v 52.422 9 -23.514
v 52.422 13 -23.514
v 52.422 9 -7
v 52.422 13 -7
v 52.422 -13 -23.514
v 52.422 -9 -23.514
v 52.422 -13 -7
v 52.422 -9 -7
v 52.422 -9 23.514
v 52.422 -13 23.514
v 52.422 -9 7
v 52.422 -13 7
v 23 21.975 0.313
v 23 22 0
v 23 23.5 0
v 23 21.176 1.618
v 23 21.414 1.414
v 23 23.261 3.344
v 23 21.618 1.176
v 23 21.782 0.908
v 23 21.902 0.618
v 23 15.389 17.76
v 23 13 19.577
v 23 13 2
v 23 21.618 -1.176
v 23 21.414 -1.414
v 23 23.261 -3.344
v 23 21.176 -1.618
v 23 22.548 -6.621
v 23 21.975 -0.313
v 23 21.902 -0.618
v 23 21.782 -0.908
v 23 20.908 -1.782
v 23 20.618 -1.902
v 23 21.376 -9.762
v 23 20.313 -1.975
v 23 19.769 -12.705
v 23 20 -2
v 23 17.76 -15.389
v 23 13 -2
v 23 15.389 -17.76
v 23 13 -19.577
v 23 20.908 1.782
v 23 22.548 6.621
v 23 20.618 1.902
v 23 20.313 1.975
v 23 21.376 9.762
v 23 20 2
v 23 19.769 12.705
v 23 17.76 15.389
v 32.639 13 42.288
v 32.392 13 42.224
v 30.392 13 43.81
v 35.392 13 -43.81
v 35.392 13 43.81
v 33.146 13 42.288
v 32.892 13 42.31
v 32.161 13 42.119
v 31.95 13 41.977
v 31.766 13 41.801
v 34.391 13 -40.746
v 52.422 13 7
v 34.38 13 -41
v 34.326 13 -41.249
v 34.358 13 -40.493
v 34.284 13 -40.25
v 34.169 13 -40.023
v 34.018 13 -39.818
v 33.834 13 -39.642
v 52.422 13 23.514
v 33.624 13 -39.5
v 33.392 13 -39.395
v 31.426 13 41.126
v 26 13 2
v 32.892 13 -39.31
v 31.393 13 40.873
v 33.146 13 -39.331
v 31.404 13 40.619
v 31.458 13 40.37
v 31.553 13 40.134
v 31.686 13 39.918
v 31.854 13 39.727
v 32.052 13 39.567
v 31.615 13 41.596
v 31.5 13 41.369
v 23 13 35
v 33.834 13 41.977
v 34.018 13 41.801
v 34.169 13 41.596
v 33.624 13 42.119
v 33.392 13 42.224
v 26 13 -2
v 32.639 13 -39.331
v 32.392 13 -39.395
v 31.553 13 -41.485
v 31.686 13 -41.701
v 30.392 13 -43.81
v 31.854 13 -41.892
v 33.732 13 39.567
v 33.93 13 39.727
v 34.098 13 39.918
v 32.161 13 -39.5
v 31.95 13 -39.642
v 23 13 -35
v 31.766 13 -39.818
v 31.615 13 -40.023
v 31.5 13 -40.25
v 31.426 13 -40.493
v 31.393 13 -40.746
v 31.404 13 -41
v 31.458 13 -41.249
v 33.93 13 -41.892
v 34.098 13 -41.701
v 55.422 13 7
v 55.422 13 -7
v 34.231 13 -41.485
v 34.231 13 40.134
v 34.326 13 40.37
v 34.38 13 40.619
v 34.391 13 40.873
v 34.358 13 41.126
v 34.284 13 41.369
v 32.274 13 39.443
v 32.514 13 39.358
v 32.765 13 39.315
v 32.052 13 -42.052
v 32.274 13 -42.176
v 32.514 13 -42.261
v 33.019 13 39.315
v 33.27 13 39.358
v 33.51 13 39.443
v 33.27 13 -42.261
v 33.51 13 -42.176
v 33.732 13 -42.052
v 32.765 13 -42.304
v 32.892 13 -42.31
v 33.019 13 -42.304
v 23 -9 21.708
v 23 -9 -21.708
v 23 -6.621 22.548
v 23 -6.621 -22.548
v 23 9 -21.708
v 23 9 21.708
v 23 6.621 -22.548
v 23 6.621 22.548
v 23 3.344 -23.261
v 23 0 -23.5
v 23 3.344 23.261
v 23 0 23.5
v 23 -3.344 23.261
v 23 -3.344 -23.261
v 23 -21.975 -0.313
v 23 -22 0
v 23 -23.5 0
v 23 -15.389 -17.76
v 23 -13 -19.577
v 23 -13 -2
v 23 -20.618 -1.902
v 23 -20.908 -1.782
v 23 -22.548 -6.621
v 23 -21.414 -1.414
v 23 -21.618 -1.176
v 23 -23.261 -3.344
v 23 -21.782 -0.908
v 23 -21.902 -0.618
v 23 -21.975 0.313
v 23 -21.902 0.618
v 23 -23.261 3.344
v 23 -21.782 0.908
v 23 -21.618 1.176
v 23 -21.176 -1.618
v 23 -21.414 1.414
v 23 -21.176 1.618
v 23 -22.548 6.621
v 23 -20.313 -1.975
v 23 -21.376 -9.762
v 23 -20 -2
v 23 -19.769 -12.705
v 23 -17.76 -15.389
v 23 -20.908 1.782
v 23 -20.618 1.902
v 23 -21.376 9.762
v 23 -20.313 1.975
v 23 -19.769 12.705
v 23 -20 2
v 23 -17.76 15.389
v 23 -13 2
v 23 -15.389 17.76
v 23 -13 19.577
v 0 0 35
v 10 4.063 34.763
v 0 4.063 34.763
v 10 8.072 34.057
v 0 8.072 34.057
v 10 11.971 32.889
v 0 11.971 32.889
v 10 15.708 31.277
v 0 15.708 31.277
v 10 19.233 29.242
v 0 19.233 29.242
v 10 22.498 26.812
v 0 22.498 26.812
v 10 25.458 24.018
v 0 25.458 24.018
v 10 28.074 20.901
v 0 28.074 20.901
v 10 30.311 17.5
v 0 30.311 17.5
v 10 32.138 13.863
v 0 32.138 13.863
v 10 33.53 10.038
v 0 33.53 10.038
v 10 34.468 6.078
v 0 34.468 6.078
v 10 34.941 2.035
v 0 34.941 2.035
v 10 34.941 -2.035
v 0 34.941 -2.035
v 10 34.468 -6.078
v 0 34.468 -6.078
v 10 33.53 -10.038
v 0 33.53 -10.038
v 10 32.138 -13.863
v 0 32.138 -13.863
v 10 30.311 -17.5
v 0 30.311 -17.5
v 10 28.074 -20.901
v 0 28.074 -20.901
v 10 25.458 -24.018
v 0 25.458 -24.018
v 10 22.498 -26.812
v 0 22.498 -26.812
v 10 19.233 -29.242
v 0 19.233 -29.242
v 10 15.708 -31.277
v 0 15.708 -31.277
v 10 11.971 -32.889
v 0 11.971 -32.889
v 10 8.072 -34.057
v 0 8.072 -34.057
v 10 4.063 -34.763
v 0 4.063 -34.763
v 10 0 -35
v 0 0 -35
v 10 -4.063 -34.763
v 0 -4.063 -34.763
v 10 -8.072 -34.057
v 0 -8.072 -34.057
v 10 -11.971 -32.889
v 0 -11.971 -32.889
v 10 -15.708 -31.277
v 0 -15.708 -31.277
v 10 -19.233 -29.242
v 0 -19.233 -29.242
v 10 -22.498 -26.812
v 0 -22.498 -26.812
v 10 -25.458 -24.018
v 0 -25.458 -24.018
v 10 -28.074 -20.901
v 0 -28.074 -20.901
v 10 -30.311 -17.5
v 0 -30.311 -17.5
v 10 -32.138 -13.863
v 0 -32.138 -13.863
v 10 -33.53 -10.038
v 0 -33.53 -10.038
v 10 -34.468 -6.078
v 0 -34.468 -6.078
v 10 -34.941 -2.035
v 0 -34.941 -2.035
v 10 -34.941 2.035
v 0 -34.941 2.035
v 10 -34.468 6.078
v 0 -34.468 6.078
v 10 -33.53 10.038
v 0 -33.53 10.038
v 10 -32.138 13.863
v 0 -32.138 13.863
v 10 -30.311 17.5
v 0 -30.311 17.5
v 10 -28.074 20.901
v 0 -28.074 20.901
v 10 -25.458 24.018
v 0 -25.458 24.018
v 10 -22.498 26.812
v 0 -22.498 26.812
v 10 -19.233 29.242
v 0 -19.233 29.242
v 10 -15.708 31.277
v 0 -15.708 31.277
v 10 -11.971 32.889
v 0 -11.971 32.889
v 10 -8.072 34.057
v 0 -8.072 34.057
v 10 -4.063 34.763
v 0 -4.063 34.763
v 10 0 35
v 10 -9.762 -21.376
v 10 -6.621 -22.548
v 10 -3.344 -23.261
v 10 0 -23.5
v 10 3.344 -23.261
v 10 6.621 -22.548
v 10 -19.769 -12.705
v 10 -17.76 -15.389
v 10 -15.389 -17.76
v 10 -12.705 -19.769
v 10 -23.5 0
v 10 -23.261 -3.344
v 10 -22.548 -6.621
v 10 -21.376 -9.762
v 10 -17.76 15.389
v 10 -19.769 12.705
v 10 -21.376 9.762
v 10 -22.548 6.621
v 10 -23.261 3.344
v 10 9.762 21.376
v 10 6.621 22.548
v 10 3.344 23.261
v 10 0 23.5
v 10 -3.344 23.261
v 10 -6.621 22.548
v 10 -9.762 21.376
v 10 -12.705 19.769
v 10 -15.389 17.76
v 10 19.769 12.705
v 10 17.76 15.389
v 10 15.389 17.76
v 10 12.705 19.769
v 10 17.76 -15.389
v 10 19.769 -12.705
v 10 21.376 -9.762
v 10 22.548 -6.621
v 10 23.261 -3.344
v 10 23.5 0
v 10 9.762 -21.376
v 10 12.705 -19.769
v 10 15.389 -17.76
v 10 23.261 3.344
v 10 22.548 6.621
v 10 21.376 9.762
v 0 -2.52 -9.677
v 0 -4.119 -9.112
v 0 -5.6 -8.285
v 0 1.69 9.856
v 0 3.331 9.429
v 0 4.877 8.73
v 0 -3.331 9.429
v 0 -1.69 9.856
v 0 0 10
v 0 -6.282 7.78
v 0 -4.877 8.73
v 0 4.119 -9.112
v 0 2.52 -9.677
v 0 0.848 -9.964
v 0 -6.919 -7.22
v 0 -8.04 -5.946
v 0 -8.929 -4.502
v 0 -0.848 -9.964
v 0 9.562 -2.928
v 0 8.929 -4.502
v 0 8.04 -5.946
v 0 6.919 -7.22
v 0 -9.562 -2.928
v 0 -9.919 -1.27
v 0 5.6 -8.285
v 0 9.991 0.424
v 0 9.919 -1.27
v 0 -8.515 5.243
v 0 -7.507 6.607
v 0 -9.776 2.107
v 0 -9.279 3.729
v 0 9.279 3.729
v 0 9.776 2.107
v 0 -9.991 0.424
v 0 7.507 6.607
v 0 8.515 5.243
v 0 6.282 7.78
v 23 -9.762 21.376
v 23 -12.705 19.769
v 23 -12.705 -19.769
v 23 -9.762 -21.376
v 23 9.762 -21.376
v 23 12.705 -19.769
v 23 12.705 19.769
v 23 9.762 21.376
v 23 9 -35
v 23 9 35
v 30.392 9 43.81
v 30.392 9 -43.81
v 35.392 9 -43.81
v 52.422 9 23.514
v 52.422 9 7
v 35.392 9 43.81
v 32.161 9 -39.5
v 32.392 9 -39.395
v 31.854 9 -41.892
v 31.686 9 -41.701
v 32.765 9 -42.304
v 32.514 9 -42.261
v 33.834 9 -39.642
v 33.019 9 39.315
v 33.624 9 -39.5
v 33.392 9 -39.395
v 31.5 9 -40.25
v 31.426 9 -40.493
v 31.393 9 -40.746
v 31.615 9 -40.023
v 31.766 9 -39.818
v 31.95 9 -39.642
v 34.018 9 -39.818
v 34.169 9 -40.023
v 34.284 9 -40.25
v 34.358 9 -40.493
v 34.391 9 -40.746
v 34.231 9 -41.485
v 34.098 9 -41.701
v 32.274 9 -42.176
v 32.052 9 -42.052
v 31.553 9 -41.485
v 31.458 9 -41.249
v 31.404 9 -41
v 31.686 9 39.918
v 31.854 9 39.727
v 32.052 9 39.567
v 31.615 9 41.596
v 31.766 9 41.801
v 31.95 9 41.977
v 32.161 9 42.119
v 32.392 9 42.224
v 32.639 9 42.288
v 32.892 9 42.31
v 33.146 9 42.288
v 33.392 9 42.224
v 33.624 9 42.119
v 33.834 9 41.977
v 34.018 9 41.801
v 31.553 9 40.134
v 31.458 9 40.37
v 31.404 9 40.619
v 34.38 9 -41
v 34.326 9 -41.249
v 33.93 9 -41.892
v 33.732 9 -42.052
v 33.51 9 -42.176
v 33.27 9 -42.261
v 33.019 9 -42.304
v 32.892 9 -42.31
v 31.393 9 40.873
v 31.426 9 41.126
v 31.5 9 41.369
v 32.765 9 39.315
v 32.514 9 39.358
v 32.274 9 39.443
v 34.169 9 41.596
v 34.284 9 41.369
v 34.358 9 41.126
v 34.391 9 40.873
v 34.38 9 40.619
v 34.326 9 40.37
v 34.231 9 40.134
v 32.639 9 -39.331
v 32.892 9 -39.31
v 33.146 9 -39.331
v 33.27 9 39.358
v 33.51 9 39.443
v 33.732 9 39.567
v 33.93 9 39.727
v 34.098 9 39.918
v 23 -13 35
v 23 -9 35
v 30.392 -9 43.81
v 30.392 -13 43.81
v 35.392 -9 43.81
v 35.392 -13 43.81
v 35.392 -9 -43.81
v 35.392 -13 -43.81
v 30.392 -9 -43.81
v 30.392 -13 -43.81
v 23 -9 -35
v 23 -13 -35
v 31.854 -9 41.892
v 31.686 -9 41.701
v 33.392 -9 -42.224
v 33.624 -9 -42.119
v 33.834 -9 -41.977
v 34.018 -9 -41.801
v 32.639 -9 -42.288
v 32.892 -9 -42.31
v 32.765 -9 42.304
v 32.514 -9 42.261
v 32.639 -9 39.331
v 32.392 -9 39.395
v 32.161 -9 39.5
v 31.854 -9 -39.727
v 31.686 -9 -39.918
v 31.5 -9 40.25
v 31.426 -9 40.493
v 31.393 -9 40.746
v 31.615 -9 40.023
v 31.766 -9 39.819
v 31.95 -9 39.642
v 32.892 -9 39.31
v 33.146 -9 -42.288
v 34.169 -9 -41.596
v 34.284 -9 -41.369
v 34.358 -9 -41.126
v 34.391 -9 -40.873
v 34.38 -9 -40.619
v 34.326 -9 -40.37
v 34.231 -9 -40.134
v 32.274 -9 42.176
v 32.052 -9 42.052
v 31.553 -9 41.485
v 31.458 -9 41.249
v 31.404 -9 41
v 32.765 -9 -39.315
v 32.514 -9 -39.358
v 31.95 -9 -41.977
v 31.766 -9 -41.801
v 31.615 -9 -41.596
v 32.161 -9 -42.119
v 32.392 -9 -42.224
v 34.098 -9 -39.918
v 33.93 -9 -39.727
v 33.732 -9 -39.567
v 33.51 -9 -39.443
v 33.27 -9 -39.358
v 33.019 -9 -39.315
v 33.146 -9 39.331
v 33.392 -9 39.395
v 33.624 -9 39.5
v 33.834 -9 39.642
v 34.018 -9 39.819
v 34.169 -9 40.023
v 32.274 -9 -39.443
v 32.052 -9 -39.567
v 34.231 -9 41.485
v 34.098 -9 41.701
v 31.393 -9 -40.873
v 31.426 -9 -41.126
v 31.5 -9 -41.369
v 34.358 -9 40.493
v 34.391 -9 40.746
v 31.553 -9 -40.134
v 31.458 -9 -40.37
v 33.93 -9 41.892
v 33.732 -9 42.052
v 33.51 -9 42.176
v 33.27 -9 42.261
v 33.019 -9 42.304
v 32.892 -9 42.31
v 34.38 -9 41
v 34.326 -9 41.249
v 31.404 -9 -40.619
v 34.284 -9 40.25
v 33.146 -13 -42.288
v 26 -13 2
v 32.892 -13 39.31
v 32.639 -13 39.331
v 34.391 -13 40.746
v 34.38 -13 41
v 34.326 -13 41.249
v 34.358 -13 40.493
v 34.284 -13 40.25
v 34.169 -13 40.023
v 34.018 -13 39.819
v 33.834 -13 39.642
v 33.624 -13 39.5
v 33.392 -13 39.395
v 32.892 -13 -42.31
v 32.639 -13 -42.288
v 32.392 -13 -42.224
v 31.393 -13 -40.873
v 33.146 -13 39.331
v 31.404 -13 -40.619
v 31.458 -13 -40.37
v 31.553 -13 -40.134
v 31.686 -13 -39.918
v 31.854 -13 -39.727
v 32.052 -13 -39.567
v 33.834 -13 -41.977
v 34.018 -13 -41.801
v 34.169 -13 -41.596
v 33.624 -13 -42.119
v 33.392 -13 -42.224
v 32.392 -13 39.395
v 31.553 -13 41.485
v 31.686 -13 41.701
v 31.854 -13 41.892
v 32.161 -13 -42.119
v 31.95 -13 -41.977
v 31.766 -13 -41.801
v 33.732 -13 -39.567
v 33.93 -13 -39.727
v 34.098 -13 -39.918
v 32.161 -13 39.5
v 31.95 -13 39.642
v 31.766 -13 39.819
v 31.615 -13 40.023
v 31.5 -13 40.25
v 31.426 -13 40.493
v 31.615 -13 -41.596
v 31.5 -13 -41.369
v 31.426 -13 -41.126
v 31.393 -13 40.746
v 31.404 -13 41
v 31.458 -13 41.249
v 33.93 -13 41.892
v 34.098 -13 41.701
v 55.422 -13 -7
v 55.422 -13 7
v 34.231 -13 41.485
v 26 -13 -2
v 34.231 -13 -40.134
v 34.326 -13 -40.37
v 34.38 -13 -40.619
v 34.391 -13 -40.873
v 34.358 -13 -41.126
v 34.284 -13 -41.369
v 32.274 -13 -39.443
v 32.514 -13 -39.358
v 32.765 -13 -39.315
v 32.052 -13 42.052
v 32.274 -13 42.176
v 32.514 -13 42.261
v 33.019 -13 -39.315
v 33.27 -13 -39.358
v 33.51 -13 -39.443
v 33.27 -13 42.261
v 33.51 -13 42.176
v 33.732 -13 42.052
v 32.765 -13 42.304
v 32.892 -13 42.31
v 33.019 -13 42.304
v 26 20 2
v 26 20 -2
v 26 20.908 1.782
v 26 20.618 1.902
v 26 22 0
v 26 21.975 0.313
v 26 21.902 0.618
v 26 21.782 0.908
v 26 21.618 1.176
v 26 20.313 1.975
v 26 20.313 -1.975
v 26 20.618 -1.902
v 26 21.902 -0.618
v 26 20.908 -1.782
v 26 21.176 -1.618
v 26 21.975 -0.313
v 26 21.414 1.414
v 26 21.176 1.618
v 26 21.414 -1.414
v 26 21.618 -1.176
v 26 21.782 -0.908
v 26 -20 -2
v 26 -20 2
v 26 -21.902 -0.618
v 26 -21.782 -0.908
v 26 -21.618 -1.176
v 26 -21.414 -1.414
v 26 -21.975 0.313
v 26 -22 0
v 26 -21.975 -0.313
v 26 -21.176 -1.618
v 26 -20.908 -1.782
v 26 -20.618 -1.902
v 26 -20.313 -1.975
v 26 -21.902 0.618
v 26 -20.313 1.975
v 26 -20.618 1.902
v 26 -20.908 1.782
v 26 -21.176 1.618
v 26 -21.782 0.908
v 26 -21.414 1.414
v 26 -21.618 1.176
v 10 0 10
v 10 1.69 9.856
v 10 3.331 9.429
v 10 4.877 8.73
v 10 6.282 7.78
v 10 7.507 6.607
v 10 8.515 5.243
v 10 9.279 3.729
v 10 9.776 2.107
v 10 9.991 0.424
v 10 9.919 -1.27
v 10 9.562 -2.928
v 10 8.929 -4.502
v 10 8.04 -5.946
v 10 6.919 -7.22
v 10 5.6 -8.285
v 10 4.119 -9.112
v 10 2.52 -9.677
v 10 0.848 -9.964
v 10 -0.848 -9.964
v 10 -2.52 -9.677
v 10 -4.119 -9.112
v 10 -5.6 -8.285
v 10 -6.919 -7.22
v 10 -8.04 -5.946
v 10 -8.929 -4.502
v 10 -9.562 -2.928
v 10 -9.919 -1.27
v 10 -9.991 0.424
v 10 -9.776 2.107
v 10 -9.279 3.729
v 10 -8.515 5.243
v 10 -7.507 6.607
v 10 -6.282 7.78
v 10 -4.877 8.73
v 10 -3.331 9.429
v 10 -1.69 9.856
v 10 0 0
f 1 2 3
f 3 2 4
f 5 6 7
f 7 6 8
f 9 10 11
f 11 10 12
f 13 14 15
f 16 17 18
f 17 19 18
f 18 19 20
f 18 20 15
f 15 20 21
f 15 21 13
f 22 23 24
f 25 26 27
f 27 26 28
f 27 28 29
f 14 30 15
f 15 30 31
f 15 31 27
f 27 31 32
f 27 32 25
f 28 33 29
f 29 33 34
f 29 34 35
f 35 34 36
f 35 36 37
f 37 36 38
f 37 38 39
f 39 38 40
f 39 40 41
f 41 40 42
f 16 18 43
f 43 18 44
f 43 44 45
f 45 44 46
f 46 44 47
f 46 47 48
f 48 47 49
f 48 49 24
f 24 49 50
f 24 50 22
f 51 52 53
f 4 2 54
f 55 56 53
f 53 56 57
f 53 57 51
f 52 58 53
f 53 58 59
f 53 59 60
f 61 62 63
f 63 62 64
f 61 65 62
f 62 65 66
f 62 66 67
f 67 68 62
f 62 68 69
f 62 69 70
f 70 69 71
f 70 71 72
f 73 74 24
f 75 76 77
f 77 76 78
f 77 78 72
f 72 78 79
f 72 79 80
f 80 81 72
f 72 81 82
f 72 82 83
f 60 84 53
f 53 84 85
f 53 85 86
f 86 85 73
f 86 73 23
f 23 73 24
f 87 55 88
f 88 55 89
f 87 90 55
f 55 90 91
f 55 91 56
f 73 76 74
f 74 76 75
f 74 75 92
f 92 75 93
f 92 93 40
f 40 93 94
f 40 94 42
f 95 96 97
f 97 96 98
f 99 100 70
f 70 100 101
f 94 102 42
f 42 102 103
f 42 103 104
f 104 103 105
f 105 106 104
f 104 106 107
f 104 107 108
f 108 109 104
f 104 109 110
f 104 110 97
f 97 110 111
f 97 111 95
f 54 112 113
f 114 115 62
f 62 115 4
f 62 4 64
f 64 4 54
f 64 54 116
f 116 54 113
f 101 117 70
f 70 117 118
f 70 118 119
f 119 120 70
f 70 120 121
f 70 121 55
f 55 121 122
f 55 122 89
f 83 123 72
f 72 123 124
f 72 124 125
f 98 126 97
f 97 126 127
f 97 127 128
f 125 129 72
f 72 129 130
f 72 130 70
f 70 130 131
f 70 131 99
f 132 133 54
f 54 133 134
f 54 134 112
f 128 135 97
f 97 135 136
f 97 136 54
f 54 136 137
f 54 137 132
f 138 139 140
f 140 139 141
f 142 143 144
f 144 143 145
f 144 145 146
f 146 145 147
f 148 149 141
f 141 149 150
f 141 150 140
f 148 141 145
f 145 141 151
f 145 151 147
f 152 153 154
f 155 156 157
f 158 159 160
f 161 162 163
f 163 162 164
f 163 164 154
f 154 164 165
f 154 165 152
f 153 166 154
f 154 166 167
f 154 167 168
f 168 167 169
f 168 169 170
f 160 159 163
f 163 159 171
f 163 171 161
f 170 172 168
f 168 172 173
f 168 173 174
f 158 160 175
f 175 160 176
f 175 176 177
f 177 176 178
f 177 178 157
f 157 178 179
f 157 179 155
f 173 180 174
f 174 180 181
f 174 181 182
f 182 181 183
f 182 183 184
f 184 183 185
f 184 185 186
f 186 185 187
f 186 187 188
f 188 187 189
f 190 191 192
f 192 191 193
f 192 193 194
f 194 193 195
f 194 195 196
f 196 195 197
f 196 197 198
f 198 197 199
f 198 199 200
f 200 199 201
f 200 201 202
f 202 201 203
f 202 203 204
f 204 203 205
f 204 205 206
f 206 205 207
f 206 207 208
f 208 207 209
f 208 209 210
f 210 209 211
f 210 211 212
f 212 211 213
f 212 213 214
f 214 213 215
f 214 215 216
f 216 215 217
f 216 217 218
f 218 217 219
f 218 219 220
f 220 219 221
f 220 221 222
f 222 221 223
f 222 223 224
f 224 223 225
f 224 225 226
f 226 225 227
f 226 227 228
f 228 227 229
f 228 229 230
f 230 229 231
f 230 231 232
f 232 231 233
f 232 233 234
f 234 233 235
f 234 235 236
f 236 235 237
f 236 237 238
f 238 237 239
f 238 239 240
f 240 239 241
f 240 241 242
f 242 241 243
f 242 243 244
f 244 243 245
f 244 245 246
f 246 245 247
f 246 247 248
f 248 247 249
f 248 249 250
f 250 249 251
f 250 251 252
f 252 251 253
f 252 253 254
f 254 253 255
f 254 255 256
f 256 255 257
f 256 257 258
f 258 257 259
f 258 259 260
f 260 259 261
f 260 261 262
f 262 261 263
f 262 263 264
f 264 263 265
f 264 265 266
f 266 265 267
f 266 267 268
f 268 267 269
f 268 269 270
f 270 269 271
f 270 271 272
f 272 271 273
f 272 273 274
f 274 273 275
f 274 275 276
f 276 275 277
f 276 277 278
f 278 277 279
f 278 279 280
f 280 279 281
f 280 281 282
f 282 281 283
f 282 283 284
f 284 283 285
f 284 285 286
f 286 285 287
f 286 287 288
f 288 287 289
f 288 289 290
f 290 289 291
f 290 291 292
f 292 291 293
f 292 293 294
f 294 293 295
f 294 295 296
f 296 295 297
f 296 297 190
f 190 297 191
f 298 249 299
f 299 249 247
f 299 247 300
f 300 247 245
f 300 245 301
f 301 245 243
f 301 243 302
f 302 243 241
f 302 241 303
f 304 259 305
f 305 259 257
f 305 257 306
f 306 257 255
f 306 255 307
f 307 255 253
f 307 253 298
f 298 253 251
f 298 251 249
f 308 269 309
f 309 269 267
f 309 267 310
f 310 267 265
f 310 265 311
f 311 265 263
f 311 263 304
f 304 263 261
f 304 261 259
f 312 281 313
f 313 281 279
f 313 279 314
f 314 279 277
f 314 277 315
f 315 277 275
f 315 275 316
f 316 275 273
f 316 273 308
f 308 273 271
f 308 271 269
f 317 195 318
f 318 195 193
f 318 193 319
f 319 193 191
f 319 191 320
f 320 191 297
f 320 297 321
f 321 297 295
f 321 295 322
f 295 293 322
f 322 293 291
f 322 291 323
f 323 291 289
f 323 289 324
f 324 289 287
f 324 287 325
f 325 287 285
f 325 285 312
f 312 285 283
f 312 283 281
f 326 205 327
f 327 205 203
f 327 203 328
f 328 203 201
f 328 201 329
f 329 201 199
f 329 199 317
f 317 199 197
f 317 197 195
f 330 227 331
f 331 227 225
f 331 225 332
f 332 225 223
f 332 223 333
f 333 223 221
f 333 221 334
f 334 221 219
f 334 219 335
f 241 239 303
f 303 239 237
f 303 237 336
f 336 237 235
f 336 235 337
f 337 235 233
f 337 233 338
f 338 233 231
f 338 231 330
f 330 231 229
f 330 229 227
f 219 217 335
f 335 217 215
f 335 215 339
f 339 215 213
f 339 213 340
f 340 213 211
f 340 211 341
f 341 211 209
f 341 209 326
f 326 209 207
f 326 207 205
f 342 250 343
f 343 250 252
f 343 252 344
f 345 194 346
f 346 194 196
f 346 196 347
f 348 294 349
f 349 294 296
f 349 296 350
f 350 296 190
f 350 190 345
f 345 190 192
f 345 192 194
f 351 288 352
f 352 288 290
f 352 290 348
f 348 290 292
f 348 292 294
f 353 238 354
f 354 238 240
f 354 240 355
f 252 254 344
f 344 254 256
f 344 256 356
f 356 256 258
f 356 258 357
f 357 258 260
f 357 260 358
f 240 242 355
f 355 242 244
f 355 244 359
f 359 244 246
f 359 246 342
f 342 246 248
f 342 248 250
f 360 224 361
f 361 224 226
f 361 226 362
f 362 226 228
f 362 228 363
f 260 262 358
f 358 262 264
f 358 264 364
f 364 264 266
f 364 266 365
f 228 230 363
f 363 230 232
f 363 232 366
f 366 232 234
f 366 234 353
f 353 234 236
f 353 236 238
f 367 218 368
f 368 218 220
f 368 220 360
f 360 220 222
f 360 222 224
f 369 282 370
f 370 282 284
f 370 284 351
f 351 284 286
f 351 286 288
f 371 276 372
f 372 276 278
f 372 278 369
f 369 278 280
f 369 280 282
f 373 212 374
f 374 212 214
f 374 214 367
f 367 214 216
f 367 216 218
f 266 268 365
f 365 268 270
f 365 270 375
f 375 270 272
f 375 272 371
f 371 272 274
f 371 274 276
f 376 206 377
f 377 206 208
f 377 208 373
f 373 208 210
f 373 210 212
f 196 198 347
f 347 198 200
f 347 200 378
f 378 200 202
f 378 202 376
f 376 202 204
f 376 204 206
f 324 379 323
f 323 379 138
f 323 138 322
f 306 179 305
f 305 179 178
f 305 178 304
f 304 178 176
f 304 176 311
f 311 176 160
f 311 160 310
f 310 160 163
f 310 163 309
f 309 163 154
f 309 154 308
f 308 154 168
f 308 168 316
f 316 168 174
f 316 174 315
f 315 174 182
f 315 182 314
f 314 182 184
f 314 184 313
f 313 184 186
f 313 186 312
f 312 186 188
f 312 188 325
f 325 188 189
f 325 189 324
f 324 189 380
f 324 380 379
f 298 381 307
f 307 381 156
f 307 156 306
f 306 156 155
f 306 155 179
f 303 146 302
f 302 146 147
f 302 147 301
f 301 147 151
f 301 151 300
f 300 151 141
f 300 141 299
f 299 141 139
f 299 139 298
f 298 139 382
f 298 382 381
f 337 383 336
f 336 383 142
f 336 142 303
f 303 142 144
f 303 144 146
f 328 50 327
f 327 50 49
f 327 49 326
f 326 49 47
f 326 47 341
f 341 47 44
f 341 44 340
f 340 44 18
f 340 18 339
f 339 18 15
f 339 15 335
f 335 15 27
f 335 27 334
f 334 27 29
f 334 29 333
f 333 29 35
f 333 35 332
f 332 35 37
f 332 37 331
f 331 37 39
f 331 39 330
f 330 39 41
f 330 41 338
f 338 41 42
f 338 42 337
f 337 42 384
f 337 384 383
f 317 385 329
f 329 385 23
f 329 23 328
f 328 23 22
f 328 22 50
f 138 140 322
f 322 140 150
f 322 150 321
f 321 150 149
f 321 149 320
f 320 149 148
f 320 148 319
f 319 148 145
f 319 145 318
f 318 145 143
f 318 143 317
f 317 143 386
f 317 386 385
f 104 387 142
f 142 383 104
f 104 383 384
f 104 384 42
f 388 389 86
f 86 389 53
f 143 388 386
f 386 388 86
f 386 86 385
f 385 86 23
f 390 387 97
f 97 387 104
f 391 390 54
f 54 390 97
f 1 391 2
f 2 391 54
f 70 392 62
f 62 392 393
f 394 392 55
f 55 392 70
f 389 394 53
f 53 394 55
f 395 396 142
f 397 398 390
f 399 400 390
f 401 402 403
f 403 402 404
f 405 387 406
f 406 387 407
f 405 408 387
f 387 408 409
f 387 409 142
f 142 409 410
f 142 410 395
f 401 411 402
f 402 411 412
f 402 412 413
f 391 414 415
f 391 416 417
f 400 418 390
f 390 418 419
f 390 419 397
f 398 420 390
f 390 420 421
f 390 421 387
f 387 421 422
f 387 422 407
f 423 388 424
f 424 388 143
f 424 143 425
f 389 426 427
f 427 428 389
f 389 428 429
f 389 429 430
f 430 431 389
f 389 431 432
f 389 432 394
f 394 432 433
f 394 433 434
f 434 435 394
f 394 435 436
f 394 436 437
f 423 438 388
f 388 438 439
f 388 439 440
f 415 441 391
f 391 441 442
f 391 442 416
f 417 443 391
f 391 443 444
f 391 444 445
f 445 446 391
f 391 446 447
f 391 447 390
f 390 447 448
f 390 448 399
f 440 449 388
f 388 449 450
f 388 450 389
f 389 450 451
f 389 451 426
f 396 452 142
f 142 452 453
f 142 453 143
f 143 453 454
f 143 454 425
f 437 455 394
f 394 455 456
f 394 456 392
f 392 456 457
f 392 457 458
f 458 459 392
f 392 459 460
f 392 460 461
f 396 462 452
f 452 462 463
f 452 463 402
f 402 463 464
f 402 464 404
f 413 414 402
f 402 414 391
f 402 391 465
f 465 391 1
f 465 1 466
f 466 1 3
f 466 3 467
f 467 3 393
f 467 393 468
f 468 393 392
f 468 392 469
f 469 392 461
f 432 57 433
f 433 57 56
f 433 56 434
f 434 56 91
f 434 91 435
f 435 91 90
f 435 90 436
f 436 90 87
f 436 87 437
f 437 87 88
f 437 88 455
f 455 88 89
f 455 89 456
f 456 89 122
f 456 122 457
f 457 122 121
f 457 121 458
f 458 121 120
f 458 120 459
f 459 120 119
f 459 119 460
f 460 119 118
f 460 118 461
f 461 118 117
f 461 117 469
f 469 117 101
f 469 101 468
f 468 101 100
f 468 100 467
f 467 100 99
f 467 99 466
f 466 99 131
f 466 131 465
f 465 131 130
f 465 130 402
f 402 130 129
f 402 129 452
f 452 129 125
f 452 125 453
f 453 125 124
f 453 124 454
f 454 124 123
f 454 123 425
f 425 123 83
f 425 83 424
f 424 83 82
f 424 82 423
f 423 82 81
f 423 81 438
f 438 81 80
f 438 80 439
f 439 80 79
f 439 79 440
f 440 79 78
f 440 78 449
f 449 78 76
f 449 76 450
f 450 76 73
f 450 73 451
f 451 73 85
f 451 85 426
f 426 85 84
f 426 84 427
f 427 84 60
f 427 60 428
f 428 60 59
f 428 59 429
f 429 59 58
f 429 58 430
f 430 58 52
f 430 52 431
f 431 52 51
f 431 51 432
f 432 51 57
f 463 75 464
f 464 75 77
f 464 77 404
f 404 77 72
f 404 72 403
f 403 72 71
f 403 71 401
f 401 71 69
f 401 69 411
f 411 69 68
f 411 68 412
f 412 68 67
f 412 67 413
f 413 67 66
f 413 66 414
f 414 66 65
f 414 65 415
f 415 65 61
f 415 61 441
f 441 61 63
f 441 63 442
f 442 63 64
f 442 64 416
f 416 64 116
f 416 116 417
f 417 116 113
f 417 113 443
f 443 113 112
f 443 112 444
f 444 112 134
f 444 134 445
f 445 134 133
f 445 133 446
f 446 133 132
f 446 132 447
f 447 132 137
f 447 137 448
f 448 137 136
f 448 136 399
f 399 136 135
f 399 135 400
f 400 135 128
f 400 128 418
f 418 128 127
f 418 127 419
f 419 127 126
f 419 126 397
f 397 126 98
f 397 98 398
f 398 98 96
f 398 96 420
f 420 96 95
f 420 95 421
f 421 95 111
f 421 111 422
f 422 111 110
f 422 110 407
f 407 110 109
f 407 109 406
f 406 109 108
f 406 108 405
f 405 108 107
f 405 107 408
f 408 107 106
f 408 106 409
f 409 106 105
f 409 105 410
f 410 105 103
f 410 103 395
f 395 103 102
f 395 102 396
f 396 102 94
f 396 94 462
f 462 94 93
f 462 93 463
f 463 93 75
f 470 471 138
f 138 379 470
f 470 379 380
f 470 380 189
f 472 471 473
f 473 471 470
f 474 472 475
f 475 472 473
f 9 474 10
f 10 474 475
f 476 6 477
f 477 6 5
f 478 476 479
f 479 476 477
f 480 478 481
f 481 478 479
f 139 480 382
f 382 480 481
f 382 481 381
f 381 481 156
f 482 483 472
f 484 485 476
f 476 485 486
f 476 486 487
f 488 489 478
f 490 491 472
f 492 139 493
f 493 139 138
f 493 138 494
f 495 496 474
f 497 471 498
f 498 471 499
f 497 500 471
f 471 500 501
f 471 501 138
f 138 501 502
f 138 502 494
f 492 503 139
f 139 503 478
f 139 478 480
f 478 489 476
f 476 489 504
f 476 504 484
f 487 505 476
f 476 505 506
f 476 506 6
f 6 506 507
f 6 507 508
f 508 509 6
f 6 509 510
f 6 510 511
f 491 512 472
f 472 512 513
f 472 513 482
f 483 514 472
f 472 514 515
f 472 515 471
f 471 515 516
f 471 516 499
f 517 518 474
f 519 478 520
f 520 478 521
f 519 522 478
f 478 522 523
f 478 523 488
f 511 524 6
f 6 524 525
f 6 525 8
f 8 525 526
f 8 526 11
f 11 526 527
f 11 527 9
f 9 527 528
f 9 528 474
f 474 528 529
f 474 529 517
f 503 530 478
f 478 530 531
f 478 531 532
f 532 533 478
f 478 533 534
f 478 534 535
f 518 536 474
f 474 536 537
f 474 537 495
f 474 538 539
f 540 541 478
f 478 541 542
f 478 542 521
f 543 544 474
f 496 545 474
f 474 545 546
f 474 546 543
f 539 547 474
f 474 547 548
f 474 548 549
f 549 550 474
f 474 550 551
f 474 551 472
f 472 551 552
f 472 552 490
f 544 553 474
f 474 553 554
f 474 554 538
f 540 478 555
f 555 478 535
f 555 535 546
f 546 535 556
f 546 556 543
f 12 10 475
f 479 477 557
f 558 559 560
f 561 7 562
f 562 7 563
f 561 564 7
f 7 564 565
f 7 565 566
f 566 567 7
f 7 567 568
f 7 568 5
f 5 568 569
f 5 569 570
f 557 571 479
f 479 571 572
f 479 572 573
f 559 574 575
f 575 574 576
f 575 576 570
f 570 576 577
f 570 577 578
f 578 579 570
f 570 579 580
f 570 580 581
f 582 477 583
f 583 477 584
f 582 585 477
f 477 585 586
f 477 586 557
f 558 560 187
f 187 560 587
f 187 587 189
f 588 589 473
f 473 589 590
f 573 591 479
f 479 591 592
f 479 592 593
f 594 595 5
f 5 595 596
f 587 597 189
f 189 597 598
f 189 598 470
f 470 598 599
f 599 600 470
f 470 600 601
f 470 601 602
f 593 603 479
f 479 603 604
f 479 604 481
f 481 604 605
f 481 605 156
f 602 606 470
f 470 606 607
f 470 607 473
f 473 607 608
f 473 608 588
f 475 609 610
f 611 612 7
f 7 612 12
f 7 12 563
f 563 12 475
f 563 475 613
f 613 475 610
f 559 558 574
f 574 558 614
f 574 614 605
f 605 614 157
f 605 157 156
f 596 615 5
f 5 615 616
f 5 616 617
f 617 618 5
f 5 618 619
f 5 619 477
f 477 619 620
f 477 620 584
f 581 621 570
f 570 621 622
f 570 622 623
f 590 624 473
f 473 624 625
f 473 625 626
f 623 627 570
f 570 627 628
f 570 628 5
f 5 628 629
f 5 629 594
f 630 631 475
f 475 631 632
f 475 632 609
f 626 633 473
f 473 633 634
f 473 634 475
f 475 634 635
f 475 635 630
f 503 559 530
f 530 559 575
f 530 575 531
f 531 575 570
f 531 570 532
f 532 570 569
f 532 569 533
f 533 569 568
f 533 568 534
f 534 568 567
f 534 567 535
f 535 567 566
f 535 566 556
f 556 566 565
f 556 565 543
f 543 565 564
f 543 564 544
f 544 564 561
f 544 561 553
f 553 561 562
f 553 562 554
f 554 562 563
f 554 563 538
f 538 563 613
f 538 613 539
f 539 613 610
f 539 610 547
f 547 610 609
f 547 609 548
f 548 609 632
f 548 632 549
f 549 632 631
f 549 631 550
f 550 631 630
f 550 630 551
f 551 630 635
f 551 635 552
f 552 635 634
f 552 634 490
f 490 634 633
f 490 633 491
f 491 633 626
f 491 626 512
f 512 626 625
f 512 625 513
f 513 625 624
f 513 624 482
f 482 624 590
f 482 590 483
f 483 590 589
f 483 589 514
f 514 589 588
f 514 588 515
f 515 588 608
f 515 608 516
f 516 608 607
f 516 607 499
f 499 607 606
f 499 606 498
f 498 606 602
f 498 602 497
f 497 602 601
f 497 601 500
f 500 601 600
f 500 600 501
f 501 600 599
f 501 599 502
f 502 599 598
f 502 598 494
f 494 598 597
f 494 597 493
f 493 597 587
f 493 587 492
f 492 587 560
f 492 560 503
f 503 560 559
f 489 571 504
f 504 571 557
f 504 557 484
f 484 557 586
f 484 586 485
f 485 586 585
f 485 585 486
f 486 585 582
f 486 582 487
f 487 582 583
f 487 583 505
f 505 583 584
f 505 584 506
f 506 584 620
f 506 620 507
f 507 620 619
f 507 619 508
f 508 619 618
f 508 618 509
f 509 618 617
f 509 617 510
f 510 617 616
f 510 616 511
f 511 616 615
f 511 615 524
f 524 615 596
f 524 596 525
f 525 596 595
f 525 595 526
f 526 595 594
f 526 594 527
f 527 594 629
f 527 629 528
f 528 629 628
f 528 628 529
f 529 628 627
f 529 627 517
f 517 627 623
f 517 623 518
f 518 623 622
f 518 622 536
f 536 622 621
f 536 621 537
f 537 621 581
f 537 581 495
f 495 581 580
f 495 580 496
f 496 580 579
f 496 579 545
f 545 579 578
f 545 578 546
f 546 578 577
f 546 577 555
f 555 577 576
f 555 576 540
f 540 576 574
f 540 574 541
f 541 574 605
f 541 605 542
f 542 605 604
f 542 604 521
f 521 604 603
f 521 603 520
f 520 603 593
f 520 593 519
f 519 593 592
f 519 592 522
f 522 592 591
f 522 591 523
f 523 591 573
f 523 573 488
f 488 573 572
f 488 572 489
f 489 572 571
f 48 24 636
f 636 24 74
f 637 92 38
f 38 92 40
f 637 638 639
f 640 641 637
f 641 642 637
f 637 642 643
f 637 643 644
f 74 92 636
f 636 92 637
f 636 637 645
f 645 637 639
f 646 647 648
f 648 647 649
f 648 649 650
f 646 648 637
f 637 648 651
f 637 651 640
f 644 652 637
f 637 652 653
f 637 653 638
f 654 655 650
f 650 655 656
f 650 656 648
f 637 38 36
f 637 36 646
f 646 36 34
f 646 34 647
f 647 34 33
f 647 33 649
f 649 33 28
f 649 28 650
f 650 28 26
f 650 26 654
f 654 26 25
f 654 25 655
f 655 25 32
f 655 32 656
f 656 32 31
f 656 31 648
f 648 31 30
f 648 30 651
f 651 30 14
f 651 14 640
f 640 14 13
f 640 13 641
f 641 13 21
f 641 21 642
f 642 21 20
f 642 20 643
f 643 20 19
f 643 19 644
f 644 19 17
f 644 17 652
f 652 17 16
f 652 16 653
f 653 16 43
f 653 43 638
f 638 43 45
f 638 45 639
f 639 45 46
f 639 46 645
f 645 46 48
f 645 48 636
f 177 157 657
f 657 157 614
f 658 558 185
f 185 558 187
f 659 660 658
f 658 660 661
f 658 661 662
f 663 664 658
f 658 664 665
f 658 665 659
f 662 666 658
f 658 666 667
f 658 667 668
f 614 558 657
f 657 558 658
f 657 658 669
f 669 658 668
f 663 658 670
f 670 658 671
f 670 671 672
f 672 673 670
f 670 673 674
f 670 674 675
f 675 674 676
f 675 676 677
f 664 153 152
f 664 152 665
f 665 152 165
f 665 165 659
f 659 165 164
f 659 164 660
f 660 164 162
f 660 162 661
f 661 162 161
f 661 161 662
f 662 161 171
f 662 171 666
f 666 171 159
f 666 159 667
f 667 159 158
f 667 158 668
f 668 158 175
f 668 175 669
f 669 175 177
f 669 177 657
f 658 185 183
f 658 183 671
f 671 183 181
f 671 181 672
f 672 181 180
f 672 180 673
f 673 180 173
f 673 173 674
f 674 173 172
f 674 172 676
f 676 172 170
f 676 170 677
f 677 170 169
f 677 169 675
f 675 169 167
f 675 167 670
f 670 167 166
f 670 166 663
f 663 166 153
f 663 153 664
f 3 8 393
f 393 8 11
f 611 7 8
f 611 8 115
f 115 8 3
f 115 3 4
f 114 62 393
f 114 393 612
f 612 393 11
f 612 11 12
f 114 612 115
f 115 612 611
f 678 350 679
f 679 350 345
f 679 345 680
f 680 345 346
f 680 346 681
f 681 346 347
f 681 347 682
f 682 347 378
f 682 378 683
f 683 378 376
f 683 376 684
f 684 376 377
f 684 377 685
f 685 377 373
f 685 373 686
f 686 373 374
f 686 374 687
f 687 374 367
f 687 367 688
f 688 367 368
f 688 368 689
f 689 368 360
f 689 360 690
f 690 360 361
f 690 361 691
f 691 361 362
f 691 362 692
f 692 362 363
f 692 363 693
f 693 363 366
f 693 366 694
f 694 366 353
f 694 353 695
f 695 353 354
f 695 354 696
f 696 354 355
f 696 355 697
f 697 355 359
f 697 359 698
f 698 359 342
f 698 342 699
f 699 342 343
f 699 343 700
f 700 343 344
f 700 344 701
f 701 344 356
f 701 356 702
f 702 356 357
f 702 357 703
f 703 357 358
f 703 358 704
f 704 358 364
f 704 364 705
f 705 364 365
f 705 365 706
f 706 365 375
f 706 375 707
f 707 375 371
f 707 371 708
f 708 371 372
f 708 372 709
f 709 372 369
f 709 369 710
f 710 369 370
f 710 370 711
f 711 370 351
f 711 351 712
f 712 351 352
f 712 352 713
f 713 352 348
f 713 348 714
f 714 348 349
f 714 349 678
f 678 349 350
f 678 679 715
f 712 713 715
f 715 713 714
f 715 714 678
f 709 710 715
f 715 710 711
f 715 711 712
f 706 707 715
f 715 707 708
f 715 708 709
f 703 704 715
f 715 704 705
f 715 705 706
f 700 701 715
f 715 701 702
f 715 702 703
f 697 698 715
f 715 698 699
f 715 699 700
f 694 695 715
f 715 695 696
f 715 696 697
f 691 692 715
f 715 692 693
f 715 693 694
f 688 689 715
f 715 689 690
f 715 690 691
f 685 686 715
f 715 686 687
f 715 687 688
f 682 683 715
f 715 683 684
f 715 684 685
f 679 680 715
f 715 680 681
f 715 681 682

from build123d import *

# Parameters (mm, degrees)
SKETCH1_R               = 35
BOSS_EXTRUDE1_DEPTH     = 10
SKETCH2_R               = 23.5
BOSS_EXTRUDE2_DEPTH     = 13
BOSS_EXTRUDE3_DEPTH     = 4
SKETCH5_R               = 1.5
CUT_EXTRUDE1_DEPTH      = 4
MIRROR3_COPY_1_SKETCH_R = 1.5
MIRROR3_COPY_1_DEPTH    = 4
BOSS_EXTRUDE4_DEPTH     = 3
FILLET1_R               = 2
FILLET1_OF_MIRROR5_R    = 2
SKETCH8_W               = 14
SKETCH8_H               = 26
BOSS_EXTRUDE5_DEPTH     = 3
SKETCH9_R               = 10
CUT_EXTRUDE2_DEPTH      = 10


with BuildPart() as part:
    # Sketch1 → Boss-Extrude1 (new body)
    with BuildSketch(Plane(origin=(0, 0, 0), x_dir=(0, 0, -1), z_dir=(1, 0, 0))):
        Circle(SKETCH1_R)
    extrude(amount=BOSS_EXTRUDE1_DEPTH)

    # Sketch2 → Boss-Extrude2 (add)
    with BuildSketch(Plane(origin=(10, 0, 0), x_dir=(0, 0, -1), z_dir=(1, 0, 0))):
        with Locations(Location((0, 0, 0), (0, 0, 180))):
            Circle(SKETCH2_R)
    extrude(amount=BOSS_EXTRUDE2_DEPTH)

    # Sketch3 → Boss-Extrude3 (add)
    with BuildSketch(Plane(origin=(0, 13, 0), x_dir=(1, 0, 0), z_dir=(0, 1, 0))):
        Polygon((23, 35), (23, -35), (30.392057511, -43.809511096), (35.392057511, -43.809511096), (52.421803319, -23.514250349), (52.421803319, 0), (52.421803319, 23.514250349), (35.392057511, 43.809511096), (30.392057511, 43.809511096), align=None)
    boss_extrude3 = extrude(amount=-BOSS_EXTRUDE3_DEPTH)

    # Sketch5 → Cut-Extrude1 (cut)
    with BuildSketch(Plane(origin=(0, 13, 0), x_dir=(1, 0, 0), z_dir=(0, 1, 0))):
        with Locations(Location((32.892057511, -40.809511096, 0), (0, 0, 270))):
            Circle(SKETCH5_R)
    cut_extrude1 = extrude(amount=-CUT_EXTRUDE1_DEPTH, mode=Mode.SUBTRACT)

    # Mirror2: Cut-Extrude1 across plane
    add(cut_extrude1.mirror(Plane.XY), mode=Mode.SUBTRACT)

    # Mirror3: Boss-Extrude3, Cut-Extrude1 across plane
    add(boss_extrude3.mirror(Plane.ZX))
    add(cut_extrude1.mirror(Plane.ZX), mode=Mode.SUBTRACT)

    # Mirror3 copy 1 sketch → Mirror3 copy 1 (cut)
    with BuildSketch(Plane.XZ.offset(13)):
        with Locations(Location((32.892057511, -40.809511096, 0), (0, 0, 270))):
            Circle(MIRROR3_COPY_1_SKETCH_R)
    extrude(amount=-MIRROR3_COPY_1_DEPTH, mode=Mode.SUBTRACT)

    # Sketch7 → Boss-Extrude4 (add)
    with BuildSketch(Plane(origin=(23, 0, 0), x_dir=(0, 0, -1), z_dir=(1, 0, 0))):
        Polygon((0, 22), (-2, 22), (-2, 13), (2, 13), (2, 22), align=None)
    boss_extrude4 = extrude(amount=BOSS_EXTRUDE4_DEPTH)

    # Fillet1
    fillet1_edges = [part.edges().sort_by_distance(p)[0] for p in [
        (24.5, 22, 2),
        (24.5, 22, -2),
    ]]
    fillet(fillet1_edges, radius=FILLET1_R - 0.0001)  # a hair under: the kernel refuses the full size

    # Mirror5: Boss-Extrude4 across plane
    add(boss_extrude4.mirror(Plane.ZX))

    # Fillet1 of Mirror5
    fillet1_of_mirror5_edges = [part.edges().sort_by_distance(p)[0] for p in [
        (24.5, -22, 2),
        (24.5, -22, -2),
    ]]
    fillet(fillet1_of_mirror5_edges, radius=FILLET1_OF_MIRROR5_R - 0.0001)  # a hair under: the kernel refuses the full size

    # Sketch8 → Boss-Extrude5 (add)
    with BuildSketch(Plane(origin=(52.421803319, 0, 0), x_dir=(0, 0, -1), z_dir=(1, 0, 0))):
        Rectangle(SKETCH8_W, SKETCH8_H)
    extrude(amount=BOSS_EXTRUDE5_DEPTH)

    # Sketch9 → Cut-Extrude2 (cut)
    with BuildSketch(Plane.ZY):
        Circle(SKETCH9_R)
    extrude(amount=-CUT_EXTRUDE2_DEPTH, mode=Mode.SUBTRACT)


solid = part.part
